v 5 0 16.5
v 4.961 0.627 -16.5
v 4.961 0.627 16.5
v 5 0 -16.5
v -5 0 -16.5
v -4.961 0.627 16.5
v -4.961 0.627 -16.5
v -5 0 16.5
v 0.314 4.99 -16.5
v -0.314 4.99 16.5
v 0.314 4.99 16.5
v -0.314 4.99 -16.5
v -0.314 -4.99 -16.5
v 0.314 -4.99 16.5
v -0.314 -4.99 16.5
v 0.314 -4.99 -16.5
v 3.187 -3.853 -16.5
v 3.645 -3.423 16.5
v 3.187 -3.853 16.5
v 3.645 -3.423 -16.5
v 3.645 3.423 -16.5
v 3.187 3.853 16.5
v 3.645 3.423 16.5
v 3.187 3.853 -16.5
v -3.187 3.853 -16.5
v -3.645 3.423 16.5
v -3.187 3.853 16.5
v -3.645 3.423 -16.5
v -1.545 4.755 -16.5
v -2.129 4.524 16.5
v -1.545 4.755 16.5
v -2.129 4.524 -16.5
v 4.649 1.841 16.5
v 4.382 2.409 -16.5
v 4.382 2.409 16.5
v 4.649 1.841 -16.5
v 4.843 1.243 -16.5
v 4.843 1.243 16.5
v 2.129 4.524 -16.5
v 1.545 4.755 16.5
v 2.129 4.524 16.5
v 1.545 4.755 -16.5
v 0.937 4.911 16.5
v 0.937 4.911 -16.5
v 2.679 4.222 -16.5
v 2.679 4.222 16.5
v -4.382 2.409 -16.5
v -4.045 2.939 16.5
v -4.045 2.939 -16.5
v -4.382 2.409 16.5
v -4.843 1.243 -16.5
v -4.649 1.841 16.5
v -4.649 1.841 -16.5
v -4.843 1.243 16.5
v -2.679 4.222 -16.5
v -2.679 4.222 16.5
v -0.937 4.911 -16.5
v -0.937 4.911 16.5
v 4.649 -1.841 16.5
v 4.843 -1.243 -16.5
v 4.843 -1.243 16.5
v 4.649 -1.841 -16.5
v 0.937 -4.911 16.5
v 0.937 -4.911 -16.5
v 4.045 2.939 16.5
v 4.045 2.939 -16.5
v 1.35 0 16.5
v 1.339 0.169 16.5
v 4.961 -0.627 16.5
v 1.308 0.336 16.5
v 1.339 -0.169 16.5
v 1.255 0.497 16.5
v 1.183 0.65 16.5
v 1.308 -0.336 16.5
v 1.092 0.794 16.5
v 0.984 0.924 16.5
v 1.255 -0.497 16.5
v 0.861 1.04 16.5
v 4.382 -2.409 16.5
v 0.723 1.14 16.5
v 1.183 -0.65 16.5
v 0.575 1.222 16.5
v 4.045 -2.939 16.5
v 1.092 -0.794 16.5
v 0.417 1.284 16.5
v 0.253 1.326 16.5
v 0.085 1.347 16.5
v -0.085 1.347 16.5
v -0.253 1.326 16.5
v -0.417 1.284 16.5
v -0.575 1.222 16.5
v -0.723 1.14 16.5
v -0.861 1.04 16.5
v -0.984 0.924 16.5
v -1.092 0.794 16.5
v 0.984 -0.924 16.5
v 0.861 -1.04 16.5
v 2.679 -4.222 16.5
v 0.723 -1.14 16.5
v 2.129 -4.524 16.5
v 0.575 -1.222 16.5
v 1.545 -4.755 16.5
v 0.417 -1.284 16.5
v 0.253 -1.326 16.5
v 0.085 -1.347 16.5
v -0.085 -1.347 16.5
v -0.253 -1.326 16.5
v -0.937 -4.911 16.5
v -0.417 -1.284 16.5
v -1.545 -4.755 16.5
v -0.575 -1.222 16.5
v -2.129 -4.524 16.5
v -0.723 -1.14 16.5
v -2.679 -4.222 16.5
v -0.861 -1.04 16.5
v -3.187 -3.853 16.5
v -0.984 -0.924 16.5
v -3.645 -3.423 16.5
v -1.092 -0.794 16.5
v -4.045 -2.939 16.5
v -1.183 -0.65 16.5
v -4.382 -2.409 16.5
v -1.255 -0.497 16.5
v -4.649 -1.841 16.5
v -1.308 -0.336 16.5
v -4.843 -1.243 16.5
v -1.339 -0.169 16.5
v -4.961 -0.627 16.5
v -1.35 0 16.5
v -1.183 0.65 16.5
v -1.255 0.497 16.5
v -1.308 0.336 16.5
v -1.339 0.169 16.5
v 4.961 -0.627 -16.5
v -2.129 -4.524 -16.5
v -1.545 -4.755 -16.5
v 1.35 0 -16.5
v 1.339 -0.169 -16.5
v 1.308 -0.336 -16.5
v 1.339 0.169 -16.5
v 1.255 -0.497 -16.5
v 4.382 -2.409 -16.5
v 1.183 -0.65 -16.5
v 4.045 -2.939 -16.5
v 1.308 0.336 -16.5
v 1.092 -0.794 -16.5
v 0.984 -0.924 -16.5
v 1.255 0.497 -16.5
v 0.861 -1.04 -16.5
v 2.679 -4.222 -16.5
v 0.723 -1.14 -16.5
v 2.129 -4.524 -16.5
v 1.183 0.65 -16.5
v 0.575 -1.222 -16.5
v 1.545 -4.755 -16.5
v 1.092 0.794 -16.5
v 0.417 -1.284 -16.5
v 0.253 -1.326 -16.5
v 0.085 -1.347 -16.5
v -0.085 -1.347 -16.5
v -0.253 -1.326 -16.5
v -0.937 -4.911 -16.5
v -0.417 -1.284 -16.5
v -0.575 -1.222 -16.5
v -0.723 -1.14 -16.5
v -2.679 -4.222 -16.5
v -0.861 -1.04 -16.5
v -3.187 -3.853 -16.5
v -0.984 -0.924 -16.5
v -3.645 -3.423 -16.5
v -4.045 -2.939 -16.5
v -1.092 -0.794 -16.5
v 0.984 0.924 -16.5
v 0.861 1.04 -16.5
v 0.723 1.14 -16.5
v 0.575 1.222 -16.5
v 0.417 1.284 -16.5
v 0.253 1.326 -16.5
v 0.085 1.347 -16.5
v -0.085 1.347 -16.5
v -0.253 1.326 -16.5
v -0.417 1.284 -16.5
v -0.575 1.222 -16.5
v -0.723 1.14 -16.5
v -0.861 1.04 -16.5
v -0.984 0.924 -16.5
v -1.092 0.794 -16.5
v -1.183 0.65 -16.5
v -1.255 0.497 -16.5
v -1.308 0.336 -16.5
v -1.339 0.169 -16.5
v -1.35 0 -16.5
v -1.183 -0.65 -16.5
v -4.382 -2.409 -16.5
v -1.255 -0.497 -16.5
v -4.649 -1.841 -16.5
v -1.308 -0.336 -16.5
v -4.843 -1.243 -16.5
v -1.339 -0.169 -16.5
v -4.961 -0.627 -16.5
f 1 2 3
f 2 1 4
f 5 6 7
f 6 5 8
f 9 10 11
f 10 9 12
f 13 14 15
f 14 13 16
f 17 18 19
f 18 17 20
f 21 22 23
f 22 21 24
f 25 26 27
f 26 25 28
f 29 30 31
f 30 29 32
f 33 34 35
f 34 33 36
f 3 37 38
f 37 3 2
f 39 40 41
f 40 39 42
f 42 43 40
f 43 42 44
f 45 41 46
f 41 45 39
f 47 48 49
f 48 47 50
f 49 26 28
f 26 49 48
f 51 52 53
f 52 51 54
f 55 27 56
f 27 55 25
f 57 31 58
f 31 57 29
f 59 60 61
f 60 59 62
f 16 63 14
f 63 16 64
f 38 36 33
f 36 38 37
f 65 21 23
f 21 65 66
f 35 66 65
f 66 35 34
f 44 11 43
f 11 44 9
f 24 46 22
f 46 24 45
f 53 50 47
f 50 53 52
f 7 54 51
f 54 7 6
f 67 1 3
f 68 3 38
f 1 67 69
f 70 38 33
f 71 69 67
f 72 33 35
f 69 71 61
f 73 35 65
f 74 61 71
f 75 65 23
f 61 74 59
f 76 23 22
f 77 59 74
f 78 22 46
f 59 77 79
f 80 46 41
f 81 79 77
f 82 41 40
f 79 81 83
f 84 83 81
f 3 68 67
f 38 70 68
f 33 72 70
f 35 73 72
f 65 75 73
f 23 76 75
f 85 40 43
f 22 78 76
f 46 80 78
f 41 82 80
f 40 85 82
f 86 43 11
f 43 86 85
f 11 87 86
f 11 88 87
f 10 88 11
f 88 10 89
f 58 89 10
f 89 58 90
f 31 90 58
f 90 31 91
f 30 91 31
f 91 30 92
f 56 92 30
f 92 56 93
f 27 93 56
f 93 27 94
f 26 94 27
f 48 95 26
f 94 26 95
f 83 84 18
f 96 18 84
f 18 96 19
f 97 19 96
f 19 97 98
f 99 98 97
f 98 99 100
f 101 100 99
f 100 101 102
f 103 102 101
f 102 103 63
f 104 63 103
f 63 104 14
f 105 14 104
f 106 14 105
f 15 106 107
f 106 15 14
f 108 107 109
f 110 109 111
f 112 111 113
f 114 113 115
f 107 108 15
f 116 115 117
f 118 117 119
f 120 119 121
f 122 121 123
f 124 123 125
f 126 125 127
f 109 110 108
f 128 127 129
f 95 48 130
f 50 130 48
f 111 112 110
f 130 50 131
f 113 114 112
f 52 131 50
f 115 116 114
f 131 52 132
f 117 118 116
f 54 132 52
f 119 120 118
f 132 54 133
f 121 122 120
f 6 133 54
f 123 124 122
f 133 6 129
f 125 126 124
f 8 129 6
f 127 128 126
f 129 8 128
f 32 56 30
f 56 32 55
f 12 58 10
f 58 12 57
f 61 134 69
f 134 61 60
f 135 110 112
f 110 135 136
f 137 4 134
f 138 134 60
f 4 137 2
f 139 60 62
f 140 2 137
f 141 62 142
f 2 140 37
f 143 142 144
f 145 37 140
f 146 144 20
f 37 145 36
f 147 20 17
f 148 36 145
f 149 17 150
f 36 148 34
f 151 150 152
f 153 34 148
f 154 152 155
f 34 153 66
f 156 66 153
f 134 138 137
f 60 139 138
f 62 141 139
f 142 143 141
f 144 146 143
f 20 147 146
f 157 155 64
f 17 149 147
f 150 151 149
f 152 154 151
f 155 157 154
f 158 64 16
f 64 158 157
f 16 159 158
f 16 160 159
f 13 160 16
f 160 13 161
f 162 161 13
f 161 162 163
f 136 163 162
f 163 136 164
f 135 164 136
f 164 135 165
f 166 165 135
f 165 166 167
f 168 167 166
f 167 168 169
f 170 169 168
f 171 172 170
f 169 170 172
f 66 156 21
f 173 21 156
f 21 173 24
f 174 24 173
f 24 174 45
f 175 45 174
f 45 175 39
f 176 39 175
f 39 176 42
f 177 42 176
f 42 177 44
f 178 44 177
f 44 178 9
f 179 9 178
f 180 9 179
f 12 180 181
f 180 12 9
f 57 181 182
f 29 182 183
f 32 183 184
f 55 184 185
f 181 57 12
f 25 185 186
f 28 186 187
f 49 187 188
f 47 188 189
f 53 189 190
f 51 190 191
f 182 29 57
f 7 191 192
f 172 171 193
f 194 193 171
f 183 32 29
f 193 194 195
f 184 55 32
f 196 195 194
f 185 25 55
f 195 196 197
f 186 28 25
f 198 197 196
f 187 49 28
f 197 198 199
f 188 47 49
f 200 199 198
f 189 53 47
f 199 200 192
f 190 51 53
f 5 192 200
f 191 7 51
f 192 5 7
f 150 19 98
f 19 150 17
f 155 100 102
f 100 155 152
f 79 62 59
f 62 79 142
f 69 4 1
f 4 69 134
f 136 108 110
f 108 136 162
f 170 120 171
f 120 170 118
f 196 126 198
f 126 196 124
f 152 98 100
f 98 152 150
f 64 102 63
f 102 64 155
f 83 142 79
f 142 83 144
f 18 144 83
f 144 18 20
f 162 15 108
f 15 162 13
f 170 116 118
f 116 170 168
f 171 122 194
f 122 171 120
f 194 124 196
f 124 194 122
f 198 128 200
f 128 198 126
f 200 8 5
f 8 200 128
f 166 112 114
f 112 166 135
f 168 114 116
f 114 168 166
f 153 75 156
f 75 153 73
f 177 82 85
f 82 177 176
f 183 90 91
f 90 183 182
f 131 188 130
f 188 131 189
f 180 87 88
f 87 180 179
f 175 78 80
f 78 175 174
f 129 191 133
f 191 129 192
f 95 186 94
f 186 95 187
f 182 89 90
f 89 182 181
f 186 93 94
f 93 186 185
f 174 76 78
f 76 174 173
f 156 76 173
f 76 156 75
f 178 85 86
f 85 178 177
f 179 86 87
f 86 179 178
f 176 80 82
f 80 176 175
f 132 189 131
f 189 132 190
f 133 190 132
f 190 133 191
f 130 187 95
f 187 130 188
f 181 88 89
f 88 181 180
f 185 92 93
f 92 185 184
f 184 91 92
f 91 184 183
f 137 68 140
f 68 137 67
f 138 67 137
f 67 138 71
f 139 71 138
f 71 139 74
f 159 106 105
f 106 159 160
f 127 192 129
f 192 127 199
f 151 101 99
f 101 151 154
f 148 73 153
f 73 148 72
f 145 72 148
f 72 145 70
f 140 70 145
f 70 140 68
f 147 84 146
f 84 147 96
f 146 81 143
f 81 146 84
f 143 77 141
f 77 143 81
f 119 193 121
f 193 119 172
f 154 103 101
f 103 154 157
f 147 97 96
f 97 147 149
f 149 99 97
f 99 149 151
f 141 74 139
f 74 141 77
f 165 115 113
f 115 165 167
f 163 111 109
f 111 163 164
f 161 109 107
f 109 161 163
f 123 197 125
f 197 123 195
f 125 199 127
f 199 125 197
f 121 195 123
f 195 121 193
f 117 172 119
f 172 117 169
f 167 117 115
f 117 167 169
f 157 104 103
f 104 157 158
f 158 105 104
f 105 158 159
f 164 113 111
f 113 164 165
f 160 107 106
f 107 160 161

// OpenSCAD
$fn = 50;


difference() {
	union() {
		translate(v = [0, 0, -16.5000000000]) {
			cylinder(h = 33, r = 5.0000000000);
		}
	}
	union() {
		translate(v = [0, 0, -100.0000000000]) {
			cylinder(h = 200, r = 1.3500000000);
		}
	}
}
